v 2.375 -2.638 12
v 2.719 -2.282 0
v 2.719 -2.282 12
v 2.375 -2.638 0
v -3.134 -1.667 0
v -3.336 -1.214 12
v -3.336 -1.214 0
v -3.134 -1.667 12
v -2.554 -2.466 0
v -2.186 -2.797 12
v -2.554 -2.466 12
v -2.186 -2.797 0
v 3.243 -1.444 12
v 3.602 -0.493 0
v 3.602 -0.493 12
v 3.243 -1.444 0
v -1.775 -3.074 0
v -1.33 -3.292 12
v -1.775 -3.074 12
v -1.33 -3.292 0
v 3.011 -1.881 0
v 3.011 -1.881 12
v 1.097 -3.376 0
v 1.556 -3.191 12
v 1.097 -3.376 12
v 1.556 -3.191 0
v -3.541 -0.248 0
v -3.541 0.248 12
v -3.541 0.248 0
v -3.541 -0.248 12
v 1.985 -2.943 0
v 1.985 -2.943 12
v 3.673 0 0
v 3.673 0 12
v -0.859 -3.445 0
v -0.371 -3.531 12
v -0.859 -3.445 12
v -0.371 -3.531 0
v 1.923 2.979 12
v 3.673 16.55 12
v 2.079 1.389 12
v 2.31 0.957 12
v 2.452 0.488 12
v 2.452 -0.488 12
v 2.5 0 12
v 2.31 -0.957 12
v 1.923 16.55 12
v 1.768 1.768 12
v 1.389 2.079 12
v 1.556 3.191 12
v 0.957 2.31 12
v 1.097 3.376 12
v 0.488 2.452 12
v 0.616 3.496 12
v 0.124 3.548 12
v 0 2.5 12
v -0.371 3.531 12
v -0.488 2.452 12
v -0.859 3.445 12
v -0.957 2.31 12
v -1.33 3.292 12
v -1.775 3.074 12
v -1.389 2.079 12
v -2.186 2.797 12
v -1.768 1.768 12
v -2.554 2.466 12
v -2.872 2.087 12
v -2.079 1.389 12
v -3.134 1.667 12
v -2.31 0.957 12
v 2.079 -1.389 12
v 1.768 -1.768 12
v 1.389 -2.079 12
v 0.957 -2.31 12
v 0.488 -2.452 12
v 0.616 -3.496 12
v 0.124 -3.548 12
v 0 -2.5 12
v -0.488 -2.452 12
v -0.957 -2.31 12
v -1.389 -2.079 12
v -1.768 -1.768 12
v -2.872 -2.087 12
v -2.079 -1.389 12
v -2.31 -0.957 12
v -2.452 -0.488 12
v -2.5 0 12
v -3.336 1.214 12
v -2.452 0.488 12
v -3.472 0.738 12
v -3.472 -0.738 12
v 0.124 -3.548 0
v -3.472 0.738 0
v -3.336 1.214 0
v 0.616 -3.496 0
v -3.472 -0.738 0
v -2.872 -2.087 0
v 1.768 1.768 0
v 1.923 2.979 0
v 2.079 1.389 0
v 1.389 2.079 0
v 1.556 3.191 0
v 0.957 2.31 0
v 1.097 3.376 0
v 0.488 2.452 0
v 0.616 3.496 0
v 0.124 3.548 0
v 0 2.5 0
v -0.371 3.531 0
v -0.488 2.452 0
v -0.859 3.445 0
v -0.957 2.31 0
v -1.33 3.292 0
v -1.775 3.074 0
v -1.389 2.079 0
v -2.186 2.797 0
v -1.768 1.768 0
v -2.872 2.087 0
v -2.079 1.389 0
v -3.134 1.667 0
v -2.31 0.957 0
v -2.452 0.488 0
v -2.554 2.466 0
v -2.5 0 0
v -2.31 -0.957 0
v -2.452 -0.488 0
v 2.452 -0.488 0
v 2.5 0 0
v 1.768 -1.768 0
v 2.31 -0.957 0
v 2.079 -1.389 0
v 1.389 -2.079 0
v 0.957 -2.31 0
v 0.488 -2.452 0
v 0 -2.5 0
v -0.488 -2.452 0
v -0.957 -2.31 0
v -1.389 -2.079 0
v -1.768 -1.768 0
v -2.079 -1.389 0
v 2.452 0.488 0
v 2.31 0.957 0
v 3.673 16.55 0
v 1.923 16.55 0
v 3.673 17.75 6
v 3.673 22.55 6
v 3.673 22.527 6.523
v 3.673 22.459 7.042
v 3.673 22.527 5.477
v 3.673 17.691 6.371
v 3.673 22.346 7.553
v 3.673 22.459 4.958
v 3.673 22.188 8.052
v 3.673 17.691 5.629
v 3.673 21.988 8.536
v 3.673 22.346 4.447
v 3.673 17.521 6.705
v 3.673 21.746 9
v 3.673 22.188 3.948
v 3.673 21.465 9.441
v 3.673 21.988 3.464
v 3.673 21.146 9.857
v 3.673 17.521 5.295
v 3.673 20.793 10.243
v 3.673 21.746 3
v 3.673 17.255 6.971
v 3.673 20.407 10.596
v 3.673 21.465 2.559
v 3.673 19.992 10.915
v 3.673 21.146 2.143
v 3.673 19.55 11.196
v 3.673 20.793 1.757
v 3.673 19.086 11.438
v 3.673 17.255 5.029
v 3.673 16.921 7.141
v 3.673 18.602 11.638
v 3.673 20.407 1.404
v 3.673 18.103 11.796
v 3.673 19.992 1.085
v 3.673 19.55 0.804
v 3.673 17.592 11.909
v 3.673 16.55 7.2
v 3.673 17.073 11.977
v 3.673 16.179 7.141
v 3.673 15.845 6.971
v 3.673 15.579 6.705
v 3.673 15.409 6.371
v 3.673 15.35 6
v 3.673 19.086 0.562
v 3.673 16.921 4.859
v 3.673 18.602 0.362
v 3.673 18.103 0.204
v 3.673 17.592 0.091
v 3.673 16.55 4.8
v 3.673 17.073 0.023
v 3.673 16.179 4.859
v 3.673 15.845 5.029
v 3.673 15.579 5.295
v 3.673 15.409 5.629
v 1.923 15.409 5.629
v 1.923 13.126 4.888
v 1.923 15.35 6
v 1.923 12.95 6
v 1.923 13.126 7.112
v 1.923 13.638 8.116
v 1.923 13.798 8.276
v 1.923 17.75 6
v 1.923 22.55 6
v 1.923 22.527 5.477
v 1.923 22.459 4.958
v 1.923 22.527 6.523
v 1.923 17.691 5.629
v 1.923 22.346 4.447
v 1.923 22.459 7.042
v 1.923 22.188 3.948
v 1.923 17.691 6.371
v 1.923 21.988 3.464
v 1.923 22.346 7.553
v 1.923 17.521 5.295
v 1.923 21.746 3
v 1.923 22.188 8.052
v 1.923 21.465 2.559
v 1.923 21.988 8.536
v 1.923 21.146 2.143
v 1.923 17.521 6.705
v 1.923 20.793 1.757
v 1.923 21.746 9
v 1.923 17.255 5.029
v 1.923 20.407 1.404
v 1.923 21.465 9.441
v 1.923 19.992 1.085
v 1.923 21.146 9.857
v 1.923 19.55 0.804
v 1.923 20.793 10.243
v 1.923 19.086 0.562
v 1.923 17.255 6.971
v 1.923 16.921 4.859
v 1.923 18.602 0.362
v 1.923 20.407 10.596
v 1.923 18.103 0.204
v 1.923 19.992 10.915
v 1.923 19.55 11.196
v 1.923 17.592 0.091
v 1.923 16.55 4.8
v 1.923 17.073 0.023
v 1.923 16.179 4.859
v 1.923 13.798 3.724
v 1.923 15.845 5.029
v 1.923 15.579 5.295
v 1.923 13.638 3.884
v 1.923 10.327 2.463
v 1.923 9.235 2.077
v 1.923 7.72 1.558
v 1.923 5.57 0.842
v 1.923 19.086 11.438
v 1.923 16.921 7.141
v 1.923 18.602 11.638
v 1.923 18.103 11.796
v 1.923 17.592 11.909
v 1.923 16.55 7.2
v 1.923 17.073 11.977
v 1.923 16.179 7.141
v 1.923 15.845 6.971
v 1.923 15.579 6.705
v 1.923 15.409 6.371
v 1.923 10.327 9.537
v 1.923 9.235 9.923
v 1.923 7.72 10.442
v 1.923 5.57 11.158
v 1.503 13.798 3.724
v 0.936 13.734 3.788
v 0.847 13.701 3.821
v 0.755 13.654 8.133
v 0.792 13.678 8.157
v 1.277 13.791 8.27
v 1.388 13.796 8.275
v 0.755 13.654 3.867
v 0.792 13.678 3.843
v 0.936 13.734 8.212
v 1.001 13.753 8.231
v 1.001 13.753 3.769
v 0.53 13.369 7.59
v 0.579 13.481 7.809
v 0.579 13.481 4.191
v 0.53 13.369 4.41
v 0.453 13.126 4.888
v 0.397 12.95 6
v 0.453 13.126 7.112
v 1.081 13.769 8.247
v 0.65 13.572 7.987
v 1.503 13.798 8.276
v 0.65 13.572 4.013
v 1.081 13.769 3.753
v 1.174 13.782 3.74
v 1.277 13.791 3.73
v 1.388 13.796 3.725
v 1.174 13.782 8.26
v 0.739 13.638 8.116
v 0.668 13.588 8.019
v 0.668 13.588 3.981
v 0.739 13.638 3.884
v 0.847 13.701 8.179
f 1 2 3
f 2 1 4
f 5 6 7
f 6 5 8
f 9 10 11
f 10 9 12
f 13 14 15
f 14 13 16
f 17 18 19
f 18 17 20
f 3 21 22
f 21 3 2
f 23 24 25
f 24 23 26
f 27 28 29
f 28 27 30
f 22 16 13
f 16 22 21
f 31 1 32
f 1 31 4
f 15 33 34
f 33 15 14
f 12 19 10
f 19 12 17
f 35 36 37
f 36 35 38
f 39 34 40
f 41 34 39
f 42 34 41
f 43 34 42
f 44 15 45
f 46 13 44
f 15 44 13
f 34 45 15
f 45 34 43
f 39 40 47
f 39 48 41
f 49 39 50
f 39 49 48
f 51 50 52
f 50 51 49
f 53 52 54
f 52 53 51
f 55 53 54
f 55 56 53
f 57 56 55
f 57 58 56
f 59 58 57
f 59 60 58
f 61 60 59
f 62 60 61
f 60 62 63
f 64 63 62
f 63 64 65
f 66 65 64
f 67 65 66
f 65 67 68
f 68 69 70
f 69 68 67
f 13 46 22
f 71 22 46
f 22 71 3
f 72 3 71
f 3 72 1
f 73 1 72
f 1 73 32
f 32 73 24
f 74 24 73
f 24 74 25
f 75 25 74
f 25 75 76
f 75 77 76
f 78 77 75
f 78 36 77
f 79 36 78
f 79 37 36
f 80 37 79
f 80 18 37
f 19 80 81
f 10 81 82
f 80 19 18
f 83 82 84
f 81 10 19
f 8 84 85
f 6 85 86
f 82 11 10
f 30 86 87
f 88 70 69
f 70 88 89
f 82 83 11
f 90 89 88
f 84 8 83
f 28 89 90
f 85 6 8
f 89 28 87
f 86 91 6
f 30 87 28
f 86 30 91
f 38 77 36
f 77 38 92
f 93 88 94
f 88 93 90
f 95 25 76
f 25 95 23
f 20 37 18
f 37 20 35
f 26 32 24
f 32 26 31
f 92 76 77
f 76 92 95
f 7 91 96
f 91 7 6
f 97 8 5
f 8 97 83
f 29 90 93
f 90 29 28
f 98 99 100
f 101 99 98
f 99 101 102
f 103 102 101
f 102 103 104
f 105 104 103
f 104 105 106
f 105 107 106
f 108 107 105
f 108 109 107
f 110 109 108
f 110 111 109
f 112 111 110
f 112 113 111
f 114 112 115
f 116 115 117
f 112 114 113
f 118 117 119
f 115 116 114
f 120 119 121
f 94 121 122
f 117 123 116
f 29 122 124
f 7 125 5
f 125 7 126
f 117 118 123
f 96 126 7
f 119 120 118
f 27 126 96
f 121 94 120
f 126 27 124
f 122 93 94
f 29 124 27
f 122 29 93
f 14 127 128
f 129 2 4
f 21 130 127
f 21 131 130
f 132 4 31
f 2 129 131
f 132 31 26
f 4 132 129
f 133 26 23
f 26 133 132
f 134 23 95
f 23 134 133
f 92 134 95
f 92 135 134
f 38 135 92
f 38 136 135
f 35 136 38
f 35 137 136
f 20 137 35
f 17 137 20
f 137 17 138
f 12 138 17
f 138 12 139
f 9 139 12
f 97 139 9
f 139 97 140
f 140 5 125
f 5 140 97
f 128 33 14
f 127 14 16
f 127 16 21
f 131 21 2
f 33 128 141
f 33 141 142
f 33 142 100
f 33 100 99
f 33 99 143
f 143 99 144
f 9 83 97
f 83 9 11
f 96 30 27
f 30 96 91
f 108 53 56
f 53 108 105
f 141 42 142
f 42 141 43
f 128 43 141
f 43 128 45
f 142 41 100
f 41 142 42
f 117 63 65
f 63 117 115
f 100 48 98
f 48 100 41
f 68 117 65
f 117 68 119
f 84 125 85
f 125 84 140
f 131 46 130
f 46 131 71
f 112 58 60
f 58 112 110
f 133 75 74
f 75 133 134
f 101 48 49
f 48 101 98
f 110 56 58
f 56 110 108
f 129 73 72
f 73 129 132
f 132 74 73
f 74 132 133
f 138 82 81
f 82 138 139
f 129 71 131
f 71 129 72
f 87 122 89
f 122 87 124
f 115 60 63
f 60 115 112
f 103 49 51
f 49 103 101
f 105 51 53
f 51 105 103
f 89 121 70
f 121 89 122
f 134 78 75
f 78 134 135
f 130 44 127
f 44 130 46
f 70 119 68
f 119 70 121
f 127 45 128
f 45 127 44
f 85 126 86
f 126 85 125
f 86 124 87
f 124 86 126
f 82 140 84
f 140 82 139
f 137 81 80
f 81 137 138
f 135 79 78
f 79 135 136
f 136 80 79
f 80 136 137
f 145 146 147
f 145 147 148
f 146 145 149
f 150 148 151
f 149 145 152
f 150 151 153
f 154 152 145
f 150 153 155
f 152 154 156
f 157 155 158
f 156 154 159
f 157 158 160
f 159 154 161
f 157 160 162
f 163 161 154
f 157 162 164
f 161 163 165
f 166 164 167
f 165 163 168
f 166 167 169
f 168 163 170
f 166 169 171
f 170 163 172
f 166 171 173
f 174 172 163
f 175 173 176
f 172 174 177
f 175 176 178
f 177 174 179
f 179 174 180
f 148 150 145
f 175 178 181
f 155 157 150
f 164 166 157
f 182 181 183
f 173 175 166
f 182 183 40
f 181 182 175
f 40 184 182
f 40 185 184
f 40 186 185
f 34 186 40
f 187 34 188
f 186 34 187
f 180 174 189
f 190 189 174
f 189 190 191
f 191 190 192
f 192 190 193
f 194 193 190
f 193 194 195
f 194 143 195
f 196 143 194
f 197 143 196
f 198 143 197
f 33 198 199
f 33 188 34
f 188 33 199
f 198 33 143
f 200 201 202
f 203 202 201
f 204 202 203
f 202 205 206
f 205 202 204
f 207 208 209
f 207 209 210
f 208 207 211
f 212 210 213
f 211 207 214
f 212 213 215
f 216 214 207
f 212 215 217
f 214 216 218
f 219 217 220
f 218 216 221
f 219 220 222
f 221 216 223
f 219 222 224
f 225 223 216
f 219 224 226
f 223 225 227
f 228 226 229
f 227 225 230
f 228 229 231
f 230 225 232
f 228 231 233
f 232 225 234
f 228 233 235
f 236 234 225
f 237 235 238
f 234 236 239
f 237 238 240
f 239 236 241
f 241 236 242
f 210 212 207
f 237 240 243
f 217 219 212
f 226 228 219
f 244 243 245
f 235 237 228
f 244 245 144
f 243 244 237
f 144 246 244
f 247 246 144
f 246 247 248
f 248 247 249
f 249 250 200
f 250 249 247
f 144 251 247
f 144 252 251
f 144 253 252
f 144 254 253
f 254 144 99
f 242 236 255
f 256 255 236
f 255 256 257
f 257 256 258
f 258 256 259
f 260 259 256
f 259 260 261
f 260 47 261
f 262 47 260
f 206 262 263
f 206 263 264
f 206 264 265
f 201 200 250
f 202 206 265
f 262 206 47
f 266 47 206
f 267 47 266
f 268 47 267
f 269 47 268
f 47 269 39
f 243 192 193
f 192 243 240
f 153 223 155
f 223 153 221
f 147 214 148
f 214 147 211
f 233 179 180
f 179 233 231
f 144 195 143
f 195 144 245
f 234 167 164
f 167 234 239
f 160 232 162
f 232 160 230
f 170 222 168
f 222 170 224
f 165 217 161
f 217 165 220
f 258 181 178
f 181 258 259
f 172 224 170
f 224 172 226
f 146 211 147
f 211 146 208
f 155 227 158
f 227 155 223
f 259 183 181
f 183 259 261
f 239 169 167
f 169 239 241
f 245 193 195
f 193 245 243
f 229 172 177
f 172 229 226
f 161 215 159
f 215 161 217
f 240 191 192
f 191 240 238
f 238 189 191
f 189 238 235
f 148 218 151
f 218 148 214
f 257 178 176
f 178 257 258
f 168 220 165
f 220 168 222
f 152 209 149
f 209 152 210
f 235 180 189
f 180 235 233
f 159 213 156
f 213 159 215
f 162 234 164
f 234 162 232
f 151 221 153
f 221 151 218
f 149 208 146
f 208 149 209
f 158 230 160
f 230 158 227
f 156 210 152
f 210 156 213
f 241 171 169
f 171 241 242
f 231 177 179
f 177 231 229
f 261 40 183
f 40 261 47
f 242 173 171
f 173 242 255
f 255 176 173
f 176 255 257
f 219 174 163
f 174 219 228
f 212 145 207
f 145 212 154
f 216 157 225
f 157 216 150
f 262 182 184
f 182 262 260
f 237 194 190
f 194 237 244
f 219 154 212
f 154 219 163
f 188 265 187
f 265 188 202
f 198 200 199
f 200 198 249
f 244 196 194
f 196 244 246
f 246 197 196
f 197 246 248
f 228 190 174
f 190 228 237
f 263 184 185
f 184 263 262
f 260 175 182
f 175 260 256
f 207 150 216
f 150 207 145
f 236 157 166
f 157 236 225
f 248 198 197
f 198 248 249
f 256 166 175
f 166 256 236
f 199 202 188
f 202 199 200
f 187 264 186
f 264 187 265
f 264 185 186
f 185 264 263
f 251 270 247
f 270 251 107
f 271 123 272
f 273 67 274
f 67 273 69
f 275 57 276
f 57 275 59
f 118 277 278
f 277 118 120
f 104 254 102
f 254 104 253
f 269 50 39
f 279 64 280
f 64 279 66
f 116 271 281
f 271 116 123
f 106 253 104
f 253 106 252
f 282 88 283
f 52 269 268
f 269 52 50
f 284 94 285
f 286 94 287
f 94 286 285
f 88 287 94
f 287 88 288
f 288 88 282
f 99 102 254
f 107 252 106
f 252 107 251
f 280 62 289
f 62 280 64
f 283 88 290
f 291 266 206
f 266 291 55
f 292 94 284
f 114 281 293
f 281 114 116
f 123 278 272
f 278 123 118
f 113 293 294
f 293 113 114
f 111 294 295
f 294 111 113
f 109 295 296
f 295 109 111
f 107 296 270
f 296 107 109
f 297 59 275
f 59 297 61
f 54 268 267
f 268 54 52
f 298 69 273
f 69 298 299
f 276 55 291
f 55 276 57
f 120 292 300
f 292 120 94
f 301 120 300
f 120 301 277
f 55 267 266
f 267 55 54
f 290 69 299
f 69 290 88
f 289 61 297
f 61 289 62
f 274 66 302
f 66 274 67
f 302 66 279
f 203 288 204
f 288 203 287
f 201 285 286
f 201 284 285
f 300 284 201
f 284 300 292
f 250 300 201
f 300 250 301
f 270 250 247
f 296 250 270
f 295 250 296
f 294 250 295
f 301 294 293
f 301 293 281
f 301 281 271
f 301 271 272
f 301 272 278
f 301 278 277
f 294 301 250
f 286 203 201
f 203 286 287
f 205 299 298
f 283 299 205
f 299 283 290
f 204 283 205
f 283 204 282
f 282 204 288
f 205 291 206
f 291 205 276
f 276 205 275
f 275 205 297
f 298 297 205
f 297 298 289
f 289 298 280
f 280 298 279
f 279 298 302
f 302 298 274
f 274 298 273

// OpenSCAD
// file: fpv_camera_mount.scad
module fpv_camera_mount_arc(depth, screwwidth, radius = 6)
{
	res = $preview ? 10 : 50;
	intersection() {
		outrad = screwwidth / 2 + radius;
		inrad = radius - screwwidth / 2;
		difference() {
			cylinder(depth, r = outrad, $fn = res);
			cylinder(depth, r = inrad, $fn = res);
		}
		arcextend = screwwidth / 2;
		cube([outrad + arcextend, outrad + arcextend, depth]);
	}
	translate([radius, 0, 0]) cylinder(depth, r = screwwidth / 2, $fn = res);
	translate([0, radius, 0]) cylinder(depth, r = screwwidth / 2, $fn = res);
}

module fpv_camera_mount_hole(depth, screwwidth = 2)
{
	res = $preview ? 10 : 20;
	cylinder(depth, r = screwwidth * 1.2 / 2, $fn = res);
}

module fpv_camera_mount(depth, screwwidth = 2)
{
	fpv_camera_mount_full_6mm(depth, screwwidth);
	rotate([0, 0, 160]) fpv_camera_mount_half_9mm(depth, screwwidth);
}

module fpv_camera_mount_full(depth, screwwidth = 2)
{
	fpv_camera_mount_full_6mm(depth, screwwidth);
	fpv_camera_mount_full_9mm(depth, screwwidth);
}

module fpv_camera_mount_half_6mm(depth, screwwidth = 2)
{
	fpv_camera_mount_hole(depth, screwwidth);
	fpv_camera_mount_arc(depth, screwwidth, 6);
}

module fpv_camera_mount_full_6mm(depth, screwwidth = 2)
{
	rotate([0, 0, 90]) fpv_camera_mount_half_6mm(depth, screwwidth);
	rotate([0, 0, 270]) fpv_camera_mount_half_6mm(depth, screwwidth);
}

module fpv_camera_mount_half_9mm(depth, screwwidth = 2)
{
	fpv_camera_mount_hole(depth, screwwidth);
	fpv_camera_mount_arc(depth, screwwidth, 9);
}

module fpv_camera_mount_full_9mm(depth, screwwidth = 2, angle_offset = -20)
{
	rotate([0, 0, angle_offset]) fpv_camera_mount_half_9mm(depth, screwwidth);
	rotate([0, 0, 180 + angle_offset]) fpv_camera_mount_half_9mm(depth, screwwidth);
}
// main file
use <fpv_camera_mount.scad>

anti_warp = .09;
filament_width = 1.75;

function anti_warp_widen(v) = v + (filament_width * anti_warp) * 2;
function anti_warp_shrink(v) = v - (filament_width * anti_warp) * 2;

height = 12;
offset = 13;

standoff_width = 5;
standoff_wall_thickness = 1.05;

wall_thickness = 1.75;

// END OF CONFIGURATION


$fs = $preview ? 1 : 0.5;
$fa = $preview ? 10 : 5;

module standoff() {
	difference() {
		cylinder(h = height, d = standoff_width + 2 * standoff_wall_thickness);
		cylinder(h = height, d = standoff_width);
	}
}

module main() {
	difference() {
		hull() {
			standoff();
			translate([standoff_width / 2.6, 0]) cylinder(h = height, d = wall_thickness * 2);
		}
		cylinder(h = height, d = standoff_width);
	}
	difference() {
		translate([standoff_width / 2.6, 0]) {
			difference() {
				union() {
					cube([wall_thickness, offset + standoff_width / 2 + standoff_wall_thickness, height]);
					translate([0, offset + standoff_width / 2 + standoff_wall_thickness, height / 2]) rotate([0, 90]) cylinder(h = wall_thickness, d = height);
				}
				translate([0, offset + standoff_width / 2 + standoff_wall_thickness, height / 2]) rotate([0, 90]) fpv_camera_mount_hole(wall_thickness);
			}
		}
		cylinder(h = height, d = standoff_width);
	}
	difference() {
		hull() {
			translate([standoff_width / 2.6, offset + standoff_width / 2 + standoff_wall_thickness, height / 2]) rotate([0, 90]) fpv_camera_mount_hole(wall_thickness);
			standoff();
		}
		cylinder(h = height, d = standoff_width);
		translate([standoff_width / 2.6 - standoff_width, offset + standoff_width / 2 + standoff_wall_thickness, height / 2]) rotate([0, 90]) fpv_camera_mount_hole(wall_thickness + standoff_width, 6);
	}
}

main();
